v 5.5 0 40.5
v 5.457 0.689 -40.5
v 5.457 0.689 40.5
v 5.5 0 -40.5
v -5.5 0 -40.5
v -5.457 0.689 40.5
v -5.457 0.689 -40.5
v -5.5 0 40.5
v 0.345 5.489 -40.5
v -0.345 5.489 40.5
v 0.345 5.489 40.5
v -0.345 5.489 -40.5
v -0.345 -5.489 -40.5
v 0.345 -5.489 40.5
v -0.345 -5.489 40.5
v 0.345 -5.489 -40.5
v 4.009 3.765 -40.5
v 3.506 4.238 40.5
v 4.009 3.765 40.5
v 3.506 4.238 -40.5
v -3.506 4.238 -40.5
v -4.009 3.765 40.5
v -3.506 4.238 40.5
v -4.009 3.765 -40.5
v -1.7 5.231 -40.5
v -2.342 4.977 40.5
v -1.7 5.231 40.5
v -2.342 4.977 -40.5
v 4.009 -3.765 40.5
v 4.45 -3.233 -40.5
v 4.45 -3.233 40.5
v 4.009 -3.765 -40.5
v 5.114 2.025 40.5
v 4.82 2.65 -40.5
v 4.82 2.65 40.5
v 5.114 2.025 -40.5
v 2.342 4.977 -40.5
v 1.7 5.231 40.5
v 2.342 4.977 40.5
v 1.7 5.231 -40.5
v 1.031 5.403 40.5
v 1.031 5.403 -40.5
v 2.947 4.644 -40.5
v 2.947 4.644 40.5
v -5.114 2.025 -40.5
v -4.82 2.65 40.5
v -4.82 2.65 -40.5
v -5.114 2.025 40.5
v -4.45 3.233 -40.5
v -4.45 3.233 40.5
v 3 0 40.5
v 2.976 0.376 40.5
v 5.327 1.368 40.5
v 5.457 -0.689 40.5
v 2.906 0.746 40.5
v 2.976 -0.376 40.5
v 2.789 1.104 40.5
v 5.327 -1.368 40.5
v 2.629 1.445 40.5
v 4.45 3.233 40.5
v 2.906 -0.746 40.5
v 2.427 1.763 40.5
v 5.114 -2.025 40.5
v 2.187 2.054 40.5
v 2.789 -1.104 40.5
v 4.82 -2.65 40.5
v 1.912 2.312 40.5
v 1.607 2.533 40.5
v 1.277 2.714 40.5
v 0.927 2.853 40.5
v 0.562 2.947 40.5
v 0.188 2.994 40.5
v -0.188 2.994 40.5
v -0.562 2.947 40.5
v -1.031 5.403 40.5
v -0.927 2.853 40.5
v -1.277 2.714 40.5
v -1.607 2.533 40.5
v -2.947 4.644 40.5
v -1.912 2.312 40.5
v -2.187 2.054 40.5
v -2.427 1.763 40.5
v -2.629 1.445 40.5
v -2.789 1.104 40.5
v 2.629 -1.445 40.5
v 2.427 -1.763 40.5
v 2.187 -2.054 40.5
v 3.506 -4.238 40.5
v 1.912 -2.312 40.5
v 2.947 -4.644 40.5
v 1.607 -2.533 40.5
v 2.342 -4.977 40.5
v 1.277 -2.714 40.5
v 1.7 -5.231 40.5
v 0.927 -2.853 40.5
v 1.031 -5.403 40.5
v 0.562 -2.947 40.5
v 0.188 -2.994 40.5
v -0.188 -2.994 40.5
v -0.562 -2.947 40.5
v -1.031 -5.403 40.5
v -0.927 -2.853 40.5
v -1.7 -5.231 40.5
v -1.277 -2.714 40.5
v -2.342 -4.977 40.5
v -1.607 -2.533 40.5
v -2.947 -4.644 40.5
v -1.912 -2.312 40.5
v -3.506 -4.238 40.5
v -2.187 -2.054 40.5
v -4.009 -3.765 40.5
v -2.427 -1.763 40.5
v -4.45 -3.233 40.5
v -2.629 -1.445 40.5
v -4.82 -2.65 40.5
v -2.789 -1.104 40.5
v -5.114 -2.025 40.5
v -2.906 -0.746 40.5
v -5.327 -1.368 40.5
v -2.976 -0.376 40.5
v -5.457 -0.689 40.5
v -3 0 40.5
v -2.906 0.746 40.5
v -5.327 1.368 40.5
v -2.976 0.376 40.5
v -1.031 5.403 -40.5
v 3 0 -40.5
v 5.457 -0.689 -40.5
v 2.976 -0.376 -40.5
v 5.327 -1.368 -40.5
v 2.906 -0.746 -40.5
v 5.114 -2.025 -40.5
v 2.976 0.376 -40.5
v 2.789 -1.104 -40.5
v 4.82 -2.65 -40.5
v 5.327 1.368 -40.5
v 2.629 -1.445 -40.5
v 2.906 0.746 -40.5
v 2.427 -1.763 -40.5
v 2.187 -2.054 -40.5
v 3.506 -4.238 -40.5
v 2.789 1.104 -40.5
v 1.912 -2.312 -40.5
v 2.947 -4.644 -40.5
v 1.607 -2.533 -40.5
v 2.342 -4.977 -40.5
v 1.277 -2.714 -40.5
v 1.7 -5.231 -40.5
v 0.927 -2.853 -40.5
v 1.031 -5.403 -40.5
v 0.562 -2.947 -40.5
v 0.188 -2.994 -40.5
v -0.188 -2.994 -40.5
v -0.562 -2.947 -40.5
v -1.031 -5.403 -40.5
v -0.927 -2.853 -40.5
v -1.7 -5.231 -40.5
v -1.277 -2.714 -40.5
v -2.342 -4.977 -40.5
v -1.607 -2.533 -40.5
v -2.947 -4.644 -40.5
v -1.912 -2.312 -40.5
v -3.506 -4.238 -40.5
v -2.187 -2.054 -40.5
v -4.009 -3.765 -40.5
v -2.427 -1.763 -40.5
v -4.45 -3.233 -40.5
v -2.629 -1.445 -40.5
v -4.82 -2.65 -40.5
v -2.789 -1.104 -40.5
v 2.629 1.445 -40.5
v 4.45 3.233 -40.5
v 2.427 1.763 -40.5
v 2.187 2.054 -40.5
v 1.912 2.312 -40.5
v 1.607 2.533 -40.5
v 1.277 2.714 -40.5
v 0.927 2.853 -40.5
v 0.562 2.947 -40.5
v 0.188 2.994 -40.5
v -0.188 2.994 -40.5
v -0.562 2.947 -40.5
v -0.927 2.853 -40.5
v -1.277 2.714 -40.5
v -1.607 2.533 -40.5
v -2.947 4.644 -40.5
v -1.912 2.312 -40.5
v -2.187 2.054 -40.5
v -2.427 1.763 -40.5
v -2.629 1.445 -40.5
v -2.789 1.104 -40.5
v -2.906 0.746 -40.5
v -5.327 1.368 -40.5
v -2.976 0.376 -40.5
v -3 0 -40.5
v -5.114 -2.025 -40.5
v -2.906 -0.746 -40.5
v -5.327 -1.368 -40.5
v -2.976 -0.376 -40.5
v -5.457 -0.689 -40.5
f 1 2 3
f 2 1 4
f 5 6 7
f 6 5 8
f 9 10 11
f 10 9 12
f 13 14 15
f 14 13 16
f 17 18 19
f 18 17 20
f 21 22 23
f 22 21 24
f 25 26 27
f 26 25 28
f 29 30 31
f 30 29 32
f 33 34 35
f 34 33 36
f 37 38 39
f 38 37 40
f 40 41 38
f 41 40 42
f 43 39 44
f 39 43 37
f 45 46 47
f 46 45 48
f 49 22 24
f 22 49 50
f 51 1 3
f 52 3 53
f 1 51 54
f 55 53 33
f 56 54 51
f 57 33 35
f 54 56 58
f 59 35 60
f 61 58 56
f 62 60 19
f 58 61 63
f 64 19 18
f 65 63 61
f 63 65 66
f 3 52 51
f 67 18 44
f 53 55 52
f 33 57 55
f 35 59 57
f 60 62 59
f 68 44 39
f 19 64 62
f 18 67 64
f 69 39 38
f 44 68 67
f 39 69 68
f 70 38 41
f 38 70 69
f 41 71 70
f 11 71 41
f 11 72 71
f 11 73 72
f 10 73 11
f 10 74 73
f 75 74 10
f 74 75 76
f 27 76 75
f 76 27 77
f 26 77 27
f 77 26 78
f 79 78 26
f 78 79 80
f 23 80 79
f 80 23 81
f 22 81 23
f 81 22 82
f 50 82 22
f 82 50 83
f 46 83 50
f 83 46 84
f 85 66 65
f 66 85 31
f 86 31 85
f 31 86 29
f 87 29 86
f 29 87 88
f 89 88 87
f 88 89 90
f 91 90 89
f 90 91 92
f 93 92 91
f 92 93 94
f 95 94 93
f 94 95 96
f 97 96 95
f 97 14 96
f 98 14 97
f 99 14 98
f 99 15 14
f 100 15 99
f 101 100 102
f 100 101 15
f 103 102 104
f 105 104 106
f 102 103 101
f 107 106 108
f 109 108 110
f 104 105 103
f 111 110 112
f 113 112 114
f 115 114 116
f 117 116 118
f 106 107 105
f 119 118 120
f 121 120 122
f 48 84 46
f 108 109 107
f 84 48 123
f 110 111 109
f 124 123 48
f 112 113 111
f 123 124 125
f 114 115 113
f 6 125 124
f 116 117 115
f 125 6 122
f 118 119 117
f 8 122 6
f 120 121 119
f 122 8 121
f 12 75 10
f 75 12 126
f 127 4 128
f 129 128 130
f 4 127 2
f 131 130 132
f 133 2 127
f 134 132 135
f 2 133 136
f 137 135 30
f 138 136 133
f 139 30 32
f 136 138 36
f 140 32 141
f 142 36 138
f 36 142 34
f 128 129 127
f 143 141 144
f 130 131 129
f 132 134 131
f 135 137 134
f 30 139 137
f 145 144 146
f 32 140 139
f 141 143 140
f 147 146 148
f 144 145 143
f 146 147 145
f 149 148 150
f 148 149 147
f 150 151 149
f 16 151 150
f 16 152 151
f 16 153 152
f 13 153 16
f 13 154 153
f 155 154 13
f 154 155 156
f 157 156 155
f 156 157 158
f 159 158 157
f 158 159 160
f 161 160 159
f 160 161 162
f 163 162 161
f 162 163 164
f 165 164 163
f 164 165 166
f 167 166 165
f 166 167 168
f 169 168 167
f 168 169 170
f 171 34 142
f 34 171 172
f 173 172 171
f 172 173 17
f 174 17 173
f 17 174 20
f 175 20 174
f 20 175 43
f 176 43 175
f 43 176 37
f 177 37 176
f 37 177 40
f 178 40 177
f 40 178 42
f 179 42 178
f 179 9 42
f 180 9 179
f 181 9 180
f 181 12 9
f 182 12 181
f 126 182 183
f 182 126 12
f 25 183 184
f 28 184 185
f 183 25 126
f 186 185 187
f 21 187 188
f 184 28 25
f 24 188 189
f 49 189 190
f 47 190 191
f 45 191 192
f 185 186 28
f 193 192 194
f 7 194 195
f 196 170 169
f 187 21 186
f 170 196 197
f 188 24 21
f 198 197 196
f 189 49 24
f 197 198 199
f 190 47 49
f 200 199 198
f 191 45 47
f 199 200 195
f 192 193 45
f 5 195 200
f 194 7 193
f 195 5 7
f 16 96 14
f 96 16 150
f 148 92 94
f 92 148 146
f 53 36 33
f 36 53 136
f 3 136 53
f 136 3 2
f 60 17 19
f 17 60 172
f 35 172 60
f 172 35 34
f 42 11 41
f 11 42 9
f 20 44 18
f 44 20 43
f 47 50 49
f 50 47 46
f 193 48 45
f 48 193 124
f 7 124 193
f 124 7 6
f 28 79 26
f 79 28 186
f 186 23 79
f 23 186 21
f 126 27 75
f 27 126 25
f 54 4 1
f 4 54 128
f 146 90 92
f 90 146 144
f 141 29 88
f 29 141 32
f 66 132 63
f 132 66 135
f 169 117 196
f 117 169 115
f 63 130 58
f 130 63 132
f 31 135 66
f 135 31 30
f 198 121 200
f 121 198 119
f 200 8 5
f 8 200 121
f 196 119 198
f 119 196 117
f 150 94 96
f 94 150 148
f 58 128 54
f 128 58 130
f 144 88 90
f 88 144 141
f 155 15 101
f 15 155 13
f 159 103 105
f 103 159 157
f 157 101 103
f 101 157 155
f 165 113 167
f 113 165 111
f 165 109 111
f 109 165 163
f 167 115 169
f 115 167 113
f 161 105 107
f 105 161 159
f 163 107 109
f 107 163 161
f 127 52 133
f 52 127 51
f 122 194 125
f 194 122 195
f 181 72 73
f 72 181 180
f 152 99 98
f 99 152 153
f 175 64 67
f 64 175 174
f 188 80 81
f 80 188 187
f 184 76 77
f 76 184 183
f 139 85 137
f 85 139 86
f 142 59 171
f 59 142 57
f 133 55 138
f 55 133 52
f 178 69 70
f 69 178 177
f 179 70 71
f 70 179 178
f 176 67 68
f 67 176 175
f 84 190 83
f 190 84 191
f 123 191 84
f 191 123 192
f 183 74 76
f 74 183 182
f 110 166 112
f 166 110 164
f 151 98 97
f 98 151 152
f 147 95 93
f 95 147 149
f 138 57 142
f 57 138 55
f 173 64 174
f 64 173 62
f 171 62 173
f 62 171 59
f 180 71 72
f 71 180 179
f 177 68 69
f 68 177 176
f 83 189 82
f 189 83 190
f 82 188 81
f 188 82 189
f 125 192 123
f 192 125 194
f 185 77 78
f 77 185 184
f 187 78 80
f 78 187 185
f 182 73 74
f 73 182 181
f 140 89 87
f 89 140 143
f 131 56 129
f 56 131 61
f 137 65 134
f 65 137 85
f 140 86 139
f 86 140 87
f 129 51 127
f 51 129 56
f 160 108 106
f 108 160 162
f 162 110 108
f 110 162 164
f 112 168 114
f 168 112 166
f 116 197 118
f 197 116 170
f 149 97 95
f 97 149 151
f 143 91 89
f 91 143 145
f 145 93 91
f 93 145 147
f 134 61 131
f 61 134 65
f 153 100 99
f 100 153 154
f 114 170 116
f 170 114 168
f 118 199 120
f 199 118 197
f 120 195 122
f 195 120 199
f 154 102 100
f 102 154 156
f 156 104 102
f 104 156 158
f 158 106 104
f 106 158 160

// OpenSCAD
$fn = 50;


difference() {
	union() {
		translate(v = [0, 0, -40.5000000000]) {
			cylinder(h = 81, r = 5.5000000000);
		}
	}
	union() {
		translate(v = [0, 0, -100.0000000000]) {
			cylinder(h = 200, r = 3);
		}
	}
}
